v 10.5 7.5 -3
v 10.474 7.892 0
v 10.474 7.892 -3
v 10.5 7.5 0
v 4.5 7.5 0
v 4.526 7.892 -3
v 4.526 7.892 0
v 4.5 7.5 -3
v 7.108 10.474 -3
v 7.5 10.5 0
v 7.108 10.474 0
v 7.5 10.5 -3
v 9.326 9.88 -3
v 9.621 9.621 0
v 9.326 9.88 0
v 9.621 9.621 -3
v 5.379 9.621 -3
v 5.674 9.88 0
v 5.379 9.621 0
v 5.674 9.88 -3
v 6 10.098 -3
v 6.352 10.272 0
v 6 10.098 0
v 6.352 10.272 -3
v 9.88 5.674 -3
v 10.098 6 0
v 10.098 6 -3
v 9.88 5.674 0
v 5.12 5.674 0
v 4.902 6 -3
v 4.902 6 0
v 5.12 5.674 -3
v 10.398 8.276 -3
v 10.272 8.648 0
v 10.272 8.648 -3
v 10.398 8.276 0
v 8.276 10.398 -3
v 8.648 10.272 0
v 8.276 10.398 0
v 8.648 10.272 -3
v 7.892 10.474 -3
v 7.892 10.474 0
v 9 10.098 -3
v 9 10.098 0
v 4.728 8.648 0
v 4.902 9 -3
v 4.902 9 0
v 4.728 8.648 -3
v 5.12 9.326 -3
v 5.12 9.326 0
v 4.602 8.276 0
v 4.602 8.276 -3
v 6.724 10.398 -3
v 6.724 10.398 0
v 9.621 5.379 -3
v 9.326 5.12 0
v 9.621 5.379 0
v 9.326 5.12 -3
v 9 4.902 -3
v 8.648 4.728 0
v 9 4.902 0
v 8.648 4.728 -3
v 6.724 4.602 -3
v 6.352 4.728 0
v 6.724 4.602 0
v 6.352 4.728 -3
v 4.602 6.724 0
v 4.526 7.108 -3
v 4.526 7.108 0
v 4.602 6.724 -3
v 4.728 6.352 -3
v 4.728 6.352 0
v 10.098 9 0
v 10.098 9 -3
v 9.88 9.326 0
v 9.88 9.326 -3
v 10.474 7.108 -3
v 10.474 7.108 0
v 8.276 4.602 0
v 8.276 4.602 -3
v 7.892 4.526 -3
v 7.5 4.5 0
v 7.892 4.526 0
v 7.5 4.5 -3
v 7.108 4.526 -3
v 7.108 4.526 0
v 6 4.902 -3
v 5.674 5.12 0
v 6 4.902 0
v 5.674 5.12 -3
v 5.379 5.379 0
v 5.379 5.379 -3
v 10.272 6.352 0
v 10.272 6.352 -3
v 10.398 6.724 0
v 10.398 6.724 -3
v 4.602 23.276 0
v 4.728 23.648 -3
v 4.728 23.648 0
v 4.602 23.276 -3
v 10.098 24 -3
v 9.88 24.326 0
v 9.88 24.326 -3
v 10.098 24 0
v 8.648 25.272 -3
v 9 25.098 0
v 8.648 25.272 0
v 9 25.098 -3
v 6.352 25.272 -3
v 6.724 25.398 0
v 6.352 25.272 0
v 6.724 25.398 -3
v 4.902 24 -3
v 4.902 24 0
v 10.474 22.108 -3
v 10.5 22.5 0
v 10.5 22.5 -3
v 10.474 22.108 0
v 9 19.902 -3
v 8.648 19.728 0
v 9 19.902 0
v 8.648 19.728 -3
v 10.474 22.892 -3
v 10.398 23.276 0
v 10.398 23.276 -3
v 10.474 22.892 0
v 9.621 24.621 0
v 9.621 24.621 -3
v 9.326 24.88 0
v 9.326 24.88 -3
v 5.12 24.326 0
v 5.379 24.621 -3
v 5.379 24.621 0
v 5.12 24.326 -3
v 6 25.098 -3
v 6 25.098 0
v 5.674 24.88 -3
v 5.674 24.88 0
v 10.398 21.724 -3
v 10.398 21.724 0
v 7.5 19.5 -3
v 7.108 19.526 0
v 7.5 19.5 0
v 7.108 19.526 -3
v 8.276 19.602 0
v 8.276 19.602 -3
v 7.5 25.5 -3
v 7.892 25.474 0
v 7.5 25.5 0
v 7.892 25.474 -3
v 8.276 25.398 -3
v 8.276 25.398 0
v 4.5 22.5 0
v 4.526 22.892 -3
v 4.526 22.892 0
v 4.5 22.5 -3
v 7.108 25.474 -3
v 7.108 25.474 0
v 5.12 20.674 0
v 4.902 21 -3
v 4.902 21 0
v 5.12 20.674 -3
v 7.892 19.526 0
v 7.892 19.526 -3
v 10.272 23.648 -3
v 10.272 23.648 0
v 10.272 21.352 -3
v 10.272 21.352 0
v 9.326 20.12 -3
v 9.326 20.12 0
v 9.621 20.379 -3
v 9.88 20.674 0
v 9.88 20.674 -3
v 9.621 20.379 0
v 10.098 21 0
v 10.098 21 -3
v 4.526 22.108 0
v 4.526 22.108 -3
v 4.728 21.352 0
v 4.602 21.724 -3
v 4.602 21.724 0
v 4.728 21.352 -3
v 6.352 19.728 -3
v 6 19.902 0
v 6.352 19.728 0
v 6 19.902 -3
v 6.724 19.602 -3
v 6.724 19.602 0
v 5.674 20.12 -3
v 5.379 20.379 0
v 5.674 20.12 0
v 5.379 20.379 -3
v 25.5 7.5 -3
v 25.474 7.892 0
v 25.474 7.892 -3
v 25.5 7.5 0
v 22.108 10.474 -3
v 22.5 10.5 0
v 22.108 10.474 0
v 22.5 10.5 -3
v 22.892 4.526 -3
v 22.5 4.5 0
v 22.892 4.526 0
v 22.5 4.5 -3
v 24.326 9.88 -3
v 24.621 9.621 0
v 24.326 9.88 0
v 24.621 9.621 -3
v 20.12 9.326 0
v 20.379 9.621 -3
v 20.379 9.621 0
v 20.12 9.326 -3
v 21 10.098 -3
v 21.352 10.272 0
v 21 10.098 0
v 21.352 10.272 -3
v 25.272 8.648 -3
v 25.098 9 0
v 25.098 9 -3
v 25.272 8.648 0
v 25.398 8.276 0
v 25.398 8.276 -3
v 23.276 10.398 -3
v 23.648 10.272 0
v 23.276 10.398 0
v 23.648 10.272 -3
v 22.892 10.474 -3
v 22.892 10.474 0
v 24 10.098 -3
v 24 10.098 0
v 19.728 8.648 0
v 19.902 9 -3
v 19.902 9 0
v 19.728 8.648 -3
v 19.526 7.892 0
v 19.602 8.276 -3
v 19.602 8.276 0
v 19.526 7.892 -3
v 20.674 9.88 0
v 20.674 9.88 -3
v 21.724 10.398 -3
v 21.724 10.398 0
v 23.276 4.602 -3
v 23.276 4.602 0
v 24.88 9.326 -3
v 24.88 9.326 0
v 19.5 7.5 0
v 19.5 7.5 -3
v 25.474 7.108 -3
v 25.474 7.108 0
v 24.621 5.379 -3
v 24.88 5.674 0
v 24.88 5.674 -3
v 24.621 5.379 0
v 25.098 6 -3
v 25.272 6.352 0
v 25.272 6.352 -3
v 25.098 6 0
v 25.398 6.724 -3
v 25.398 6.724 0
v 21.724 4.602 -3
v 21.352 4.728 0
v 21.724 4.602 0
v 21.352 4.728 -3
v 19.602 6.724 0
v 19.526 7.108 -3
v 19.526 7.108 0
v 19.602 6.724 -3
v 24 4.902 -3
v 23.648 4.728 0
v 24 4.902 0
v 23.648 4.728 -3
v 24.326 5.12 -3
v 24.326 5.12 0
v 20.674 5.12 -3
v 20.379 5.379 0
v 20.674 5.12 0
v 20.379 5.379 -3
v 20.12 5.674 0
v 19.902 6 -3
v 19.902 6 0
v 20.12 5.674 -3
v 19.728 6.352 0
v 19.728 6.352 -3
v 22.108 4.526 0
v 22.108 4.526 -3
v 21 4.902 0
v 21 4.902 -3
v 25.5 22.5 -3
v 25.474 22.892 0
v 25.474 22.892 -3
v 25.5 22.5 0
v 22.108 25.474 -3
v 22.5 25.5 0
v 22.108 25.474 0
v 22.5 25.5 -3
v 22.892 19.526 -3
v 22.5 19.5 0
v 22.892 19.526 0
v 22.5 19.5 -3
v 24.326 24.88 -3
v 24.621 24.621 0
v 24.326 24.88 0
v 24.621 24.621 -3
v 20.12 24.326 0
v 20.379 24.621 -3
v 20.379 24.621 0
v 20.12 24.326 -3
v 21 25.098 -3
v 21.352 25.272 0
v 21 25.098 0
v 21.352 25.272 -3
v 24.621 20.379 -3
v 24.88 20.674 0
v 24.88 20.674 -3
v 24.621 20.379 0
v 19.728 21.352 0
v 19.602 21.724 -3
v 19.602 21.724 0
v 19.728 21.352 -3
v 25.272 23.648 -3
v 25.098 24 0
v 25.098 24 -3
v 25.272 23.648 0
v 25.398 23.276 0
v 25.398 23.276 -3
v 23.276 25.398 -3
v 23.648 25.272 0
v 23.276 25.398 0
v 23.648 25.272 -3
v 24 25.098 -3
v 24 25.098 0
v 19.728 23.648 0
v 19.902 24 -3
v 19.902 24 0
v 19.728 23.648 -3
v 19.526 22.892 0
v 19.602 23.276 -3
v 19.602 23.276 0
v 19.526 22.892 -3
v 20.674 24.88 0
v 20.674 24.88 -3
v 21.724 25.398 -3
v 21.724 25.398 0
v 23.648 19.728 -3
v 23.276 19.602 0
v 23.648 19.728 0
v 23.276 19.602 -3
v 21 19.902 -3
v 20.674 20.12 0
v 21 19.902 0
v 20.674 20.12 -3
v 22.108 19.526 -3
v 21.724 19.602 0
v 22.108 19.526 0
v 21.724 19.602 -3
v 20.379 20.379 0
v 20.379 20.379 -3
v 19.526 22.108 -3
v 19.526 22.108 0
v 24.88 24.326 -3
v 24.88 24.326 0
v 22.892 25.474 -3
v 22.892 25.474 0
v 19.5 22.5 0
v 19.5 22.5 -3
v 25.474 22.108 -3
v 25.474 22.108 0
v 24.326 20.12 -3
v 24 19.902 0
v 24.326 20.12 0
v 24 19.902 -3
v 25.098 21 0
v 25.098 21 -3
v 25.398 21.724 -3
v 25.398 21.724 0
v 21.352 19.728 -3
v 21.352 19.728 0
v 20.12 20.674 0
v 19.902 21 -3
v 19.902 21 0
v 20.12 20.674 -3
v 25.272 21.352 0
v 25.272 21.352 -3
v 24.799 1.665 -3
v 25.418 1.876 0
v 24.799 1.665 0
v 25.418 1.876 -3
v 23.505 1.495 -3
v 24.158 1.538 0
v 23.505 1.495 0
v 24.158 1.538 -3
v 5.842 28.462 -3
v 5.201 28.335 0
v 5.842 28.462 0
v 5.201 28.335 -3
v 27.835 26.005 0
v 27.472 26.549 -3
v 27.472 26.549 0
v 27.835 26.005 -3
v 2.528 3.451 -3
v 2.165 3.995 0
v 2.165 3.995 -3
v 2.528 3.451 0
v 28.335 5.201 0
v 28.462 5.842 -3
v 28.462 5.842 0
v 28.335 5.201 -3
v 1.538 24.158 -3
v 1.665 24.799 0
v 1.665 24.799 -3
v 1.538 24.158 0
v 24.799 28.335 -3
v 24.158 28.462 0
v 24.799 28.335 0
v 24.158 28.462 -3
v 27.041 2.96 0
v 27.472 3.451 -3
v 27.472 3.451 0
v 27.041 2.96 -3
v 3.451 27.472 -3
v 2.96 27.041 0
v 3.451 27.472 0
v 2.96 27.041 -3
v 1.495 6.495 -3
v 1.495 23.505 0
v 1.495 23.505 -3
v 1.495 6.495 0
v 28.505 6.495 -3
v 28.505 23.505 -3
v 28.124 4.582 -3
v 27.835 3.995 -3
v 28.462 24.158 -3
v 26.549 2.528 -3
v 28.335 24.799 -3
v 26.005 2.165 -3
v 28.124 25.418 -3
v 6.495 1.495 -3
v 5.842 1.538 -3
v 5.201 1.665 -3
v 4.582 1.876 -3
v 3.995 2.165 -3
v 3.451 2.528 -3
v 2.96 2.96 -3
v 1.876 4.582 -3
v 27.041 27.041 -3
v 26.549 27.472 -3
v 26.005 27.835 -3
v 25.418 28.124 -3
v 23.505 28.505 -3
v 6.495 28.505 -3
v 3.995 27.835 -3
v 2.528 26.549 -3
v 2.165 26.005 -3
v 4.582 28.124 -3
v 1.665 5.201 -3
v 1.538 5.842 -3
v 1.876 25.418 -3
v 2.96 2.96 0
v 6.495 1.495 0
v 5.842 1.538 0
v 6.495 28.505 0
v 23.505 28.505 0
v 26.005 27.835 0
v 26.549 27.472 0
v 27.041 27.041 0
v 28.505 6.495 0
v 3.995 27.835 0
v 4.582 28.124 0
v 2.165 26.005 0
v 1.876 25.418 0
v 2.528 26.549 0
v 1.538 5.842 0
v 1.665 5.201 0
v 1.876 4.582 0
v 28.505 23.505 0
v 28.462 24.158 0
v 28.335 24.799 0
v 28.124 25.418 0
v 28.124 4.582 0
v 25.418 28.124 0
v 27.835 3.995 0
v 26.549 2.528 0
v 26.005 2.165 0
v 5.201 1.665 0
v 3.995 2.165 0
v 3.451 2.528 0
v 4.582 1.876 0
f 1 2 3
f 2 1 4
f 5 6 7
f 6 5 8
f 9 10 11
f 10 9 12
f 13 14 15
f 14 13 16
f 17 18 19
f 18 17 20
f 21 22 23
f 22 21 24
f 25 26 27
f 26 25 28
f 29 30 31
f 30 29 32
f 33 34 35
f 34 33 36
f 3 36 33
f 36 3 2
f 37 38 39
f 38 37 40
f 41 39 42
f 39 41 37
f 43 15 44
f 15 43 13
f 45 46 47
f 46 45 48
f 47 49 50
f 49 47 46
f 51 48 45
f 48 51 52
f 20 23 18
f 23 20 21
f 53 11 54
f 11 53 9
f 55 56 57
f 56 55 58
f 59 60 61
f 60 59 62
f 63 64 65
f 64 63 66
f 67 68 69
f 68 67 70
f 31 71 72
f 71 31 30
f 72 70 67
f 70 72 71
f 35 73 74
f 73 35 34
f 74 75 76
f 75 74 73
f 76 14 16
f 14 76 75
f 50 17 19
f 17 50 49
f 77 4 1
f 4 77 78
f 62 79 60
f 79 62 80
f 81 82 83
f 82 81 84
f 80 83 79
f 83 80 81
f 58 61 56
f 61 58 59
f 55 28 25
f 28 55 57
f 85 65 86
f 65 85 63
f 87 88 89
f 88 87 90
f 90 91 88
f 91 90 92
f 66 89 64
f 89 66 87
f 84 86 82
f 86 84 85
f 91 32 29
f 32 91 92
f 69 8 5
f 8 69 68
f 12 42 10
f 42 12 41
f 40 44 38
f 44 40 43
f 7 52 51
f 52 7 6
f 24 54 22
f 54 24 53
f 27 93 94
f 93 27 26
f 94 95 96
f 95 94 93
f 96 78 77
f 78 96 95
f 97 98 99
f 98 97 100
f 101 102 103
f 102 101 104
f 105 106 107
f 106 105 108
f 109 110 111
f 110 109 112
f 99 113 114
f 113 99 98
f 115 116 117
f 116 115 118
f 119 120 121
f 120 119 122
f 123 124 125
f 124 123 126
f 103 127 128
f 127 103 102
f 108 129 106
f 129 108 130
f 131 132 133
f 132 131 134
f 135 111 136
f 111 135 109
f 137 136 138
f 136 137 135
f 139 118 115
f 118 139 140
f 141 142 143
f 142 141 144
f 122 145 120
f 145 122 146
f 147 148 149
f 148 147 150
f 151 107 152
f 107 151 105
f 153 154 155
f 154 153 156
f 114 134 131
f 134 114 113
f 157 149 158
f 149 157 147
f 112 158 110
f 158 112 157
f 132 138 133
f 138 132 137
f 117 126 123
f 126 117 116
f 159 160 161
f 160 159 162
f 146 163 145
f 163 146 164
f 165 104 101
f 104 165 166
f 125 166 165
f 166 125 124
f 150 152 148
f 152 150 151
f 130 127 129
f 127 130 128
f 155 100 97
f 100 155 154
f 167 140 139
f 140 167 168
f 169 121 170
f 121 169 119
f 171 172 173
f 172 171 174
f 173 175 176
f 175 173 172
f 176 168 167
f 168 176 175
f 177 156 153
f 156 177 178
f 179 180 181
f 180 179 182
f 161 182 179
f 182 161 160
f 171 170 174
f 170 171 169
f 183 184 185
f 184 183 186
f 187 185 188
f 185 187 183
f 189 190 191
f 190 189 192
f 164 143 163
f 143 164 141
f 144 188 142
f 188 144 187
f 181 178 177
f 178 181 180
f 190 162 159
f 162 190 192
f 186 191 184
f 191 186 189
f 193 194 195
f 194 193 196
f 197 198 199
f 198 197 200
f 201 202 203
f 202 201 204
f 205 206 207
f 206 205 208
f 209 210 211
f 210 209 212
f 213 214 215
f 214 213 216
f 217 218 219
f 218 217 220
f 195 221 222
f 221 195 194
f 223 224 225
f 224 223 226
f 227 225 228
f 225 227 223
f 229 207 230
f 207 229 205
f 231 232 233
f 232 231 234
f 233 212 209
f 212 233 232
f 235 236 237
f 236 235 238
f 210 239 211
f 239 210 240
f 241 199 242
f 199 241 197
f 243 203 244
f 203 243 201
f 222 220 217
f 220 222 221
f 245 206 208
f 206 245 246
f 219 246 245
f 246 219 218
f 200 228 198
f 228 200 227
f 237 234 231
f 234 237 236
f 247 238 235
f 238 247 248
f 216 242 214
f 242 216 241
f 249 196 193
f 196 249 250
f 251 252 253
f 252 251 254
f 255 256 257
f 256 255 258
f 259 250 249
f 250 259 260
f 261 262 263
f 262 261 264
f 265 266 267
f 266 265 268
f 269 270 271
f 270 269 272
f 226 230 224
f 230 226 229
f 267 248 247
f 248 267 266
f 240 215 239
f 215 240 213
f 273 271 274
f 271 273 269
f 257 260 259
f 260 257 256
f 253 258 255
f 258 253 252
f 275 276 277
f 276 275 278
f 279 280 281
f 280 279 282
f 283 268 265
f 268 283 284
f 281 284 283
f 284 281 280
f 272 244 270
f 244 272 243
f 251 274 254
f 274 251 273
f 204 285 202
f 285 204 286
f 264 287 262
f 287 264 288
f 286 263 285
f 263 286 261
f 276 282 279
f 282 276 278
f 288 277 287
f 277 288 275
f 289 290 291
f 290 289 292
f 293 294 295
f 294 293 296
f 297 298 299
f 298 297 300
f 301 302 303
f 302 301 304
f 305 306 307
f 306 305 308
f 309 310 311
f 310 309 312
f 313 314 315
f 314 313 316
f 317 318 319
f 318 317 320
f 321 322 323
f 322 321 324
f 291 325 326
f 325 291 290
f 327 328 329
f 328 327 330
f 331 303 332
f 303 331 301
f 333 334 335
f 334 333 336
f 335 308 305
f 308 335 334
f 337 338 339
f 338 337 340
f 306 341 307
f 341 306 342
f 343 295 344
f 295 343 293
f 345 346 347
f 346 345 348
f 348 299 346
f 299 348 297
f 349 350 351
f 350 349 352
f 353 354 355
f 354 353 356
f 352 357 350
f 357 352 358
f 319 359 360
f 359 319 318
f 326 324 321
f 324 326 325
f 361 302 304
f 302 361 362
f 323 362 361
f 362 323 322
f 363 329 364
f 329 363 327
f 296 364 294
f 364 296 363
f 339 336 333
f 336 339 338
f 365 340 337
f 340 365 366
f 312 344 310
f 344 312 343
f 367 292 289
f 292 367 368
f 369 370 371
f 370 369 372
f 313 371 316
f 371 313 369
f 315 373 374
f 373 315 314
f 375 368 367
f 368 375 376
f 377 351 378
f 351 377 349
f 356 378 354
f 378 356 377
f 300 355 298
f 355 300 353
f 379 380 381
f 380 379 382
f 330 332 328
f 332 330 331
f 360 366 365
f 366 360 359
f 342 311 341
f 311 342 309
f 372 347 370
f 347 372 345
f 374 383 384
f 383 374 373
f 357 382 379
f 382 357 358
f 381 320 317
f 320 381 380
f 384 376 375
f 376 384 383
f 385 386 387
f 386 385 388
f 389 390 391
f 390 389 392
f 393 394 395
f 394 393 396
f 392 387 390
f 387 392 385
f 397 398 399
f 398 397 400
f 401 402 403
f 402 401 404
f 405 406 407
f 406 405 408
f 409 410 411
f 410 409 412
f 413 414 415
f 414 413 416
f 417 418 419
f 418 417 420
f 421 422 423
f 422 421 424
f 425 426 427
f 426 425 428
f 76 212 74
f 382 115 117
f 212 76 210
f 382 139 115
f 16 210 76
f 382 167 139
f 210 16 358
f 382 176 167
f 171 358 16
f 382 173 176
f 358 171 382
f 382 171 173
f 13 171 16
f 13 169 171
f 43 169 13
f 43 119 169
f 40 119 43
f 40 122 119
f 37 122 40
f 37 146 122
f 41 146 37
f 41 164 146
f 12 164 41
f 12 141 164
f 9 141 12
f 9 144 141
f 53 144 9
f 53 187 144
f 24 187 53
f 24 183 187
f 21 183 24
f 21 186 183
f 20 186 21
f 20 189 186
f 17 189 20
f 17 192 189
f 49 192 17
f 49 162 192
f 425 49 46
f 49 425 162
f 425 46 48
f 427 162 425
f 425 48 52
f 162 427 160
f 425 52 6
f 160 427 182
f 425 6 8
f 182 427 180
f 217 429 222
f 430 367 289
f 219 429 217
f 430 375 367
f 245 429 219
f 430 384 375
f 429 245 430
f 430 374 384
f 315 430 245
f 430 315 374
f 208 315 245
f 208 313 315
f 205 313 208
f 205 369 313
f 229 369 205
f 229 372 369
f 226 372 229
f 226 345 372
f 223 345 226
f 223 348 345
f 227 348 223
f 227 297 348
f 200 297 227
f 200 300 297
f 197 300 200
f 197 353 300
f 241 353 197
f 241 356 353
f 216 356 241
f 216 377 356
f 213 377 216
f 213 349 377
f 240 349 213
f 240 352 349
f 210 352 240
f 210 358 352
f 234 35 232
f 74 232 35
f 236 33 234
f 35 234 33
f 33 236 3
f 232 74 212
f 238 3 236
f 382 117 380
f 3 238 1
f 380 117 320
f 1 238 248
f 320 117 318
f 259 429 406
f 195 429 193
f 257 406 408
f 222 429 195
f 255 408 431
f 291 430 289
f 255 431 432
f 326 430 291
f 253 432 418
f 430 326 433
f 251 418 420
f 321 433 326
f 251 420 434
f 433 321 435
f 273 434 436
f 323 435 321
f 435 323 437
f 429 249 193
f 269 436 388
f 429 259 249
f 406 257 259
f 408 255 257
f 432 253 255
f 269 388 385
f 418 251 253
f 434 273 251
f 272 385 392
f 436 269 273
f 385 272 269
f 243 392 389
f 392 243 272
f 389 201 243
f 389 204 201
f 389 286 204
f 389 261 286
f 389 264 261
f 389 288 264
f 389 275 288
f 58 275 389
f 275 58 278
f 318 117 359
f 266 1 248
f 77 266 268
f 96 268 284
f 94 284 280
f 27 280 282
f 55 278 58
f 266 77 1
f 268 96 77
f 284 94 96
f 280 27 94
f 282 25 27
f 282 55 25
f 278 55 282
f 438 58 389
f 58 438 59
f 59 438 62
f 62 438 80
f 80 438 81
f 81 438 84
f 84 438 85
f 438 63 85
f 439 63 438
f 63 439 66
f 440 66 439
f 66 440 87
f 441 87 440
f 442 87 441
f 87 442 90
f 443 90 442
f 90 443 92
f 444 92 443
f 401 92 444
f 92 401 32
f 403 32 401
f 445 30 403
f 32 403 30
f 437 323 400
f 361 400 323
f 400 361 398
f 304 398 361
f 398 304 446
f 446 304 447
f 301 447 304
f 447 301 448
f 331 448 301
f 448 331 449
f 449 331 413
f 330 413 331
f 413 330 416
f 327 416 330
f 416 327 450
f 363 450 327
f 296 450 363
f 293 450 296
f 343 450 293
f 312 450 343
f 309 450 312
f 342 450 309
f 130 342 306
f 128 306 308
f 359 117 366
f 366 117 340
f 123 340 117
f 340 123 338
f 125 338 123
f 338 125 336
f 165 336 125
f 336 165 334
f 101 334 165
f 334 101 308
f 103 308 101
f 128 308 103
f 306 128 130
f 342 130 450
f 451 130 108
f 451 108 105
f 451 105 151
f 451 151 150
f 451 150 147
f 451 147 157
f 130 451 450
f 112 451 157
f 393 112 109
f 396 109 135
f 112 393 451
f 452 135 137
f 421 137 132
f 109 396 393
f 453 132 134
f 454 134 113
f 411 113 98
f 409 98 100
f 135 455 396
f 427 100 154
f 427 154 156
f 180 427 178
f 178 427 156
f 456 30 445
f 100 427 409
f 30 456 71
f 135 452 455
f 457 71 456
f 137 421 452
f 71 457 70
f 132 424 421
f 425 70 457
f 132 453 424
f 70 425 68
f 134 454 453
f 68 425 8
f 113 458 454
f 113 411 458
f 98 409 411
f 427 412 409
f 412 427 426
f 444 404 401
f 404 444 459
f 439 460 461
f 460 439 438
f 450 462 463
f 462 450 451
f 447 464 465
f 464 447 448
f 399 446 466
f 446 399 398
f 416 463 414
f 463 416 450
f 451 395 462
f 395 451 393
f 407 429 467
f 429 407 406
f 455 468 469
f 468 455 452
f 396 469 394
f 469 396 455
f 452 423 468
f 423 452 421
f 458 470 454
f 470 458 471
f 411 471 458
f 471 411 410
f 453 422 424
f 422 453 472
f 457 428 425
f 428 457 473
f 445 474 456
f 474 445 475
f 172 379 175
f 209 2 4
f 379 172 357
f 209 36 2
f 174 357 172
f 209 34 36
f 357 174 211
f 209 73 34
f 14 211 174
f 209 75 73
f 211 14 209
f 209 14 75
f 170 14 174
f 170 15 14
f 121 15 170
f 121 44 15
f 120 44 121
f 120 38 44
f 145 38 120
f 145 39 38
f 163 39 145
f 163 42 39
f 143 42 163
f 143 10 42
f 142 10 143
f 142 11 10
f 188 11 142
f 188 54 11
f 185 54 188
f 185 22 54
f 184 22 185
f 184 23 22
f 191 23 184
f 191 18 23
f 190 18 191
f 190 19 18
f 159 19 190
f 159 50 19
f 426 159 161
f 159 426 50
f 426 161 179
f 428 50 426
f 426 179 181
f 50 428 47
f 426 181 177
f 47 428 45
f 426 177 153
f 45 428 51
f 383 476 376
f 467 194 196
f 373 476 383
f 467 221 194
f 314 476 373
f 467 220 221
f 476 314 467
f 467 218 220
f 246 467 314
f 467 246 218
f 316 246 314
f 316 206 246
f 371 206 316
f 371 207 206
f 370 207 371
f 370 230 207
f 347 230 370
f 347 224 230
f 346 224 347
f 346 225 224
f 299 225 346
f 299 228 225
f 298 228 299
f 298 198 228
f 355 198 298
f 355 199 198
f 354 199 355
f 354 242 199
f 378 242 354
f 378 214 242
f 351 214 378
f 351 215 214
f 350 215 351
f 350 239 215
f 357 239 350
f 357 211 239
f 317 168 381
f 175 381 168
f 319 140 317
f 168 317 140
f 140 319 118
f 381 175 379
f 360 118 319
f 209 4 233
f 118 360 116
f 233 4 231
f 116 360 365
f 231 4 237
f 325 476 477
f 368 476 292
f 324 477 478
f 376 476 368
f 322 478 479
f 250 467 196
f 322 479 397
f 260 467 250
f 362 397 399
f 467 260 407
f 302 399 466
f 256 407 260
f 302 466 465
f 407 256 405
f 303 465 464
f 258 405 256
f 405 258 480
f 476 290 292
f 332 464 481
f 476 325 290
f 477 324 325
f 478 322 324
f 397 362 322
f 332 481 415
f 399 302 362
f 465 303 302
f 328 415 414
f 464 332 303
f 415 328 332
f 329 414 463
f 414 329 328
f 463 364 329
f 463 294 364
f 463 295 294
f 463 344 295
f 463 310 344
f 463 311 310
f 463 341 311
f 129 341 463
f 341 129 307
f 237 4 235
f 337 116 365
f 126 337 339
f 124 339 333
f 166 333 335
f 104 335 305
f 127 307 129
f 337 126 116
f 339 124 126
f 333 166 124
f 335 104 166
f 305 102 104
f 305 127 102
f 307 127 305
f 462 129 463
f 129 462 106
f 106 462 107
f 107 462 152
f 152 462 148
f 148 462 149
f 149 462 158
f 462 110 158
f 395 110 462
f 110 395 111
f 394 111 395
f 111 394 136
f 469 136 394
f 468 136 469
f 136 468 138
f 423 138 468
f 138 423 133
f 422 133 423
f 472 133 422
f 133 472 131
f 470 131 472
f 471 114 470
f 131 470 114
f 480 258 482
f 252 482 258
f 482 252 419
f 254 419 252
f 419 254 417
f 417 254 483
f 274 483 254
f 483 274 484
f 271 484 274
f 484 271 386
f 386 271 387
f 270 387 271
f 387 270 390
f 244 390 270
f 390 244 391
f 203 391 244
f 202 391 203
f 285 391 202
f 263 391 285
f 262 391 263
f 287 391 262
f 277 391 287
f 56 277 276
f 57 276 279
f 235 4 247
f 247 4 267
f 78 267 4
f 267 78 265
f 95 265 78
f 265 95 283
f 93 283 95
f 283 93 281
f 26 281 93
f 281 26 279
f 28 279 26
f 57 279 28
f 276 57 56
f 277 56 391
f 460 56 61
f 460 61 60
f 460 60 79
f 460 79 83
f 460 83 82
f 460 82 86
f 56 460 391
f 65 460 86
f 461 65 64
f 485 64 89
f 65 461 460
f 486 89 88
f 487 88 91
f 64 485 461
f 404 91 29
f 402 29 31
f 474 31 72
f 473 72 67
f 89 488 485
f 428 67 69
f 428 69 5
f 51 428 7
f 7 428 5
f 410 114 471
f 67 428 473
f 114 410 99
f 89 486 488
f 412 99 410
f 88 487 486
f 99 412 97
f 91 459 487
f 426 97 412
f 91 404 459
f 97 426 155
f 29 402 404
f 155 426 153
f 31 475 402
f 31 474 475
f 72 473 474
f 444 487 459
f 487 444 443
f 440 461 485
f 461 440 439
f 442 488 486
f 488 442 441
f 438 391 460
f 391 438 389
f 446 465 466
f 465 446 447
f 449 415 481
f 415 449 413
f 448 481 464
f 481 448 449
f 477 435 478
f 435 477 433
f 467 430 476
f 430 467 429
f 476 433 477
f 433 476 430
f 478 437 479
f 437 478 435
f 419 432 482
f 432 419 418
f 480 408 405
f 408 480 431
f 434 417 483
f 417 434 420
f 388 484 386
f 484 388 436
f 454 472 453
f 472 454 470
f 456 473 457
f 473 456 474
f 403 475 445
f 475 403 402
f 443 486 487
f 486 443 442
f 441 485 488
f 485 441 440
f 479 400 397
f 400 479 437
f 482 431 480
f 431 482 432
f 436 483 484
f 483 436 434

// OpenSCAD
// Generated by SolidPython 1.1.3 on 2022-09-14 10:11:20
$fn = 48;


difference() {
	union() {
		color(alpha = 1.0000000000, c = "Gold") {
			translate(v = [15.0000000000, 15.0000000000, 0]) {
				rotate(a = [0, 0, 0]) {
					translate(v = [0, 0, -3]) {
						linear_extrude(height = 3) {
							offset(r = 5) {
								square(center = true, size = [17.0100000000, 17.0100000000]);
							}
						}
					}
				}
			}
		}
	}
	union() {
		color(alpha = 1.0000000000, c = "Gold") {
			translate(v = [7.5000000000, 7.5000000000, 0]) {
				rotate(a = [0, 0, 0]) {
					translate(v = [0, 0, -250]) {
						cylinder(h = 500, r = 3.0000000000);
					}
				}
			}
		}
		color(alpha = 1.0000000000, c = "Gold") {
			translate(v = [7.5000000000, 22.5000000000, 0]) {
				rotate(a = [0, 0, 0]) {
					translate(v = [0, 0, -250]) {
						cylinder(h = 500, r = 3.0000000000);
					}
				}
			}
		}
		color(alpha = 1.0000000000, c = "Gold") {
			translate(v = [22.5000000000, 7.5000000000, 0]) {
				rotate(a = [0, 0, 0]) {
					translate(v = [0, 0, -250]) {
						cylinder(h = 500, r = 3.0000000000);
					}
				}
			}
		}
		color(alpha = 1.0000000000, c = "Gold") {
			translate(v = [22.5000000000, 22.5000000000, 0]) {
				rotate(a = [0, 0, 0]) {
					translate(v = [0, 0, -250]) {
						cylinder(h = 500, r = 3.0000000000);
					}
				}
			}
		}
	}
}
/***********************************************
*********      SolidPython code:      **********
************************************************
 
import subprocess

from solid.objects import *
from solid import scad_render_to_file, scad_render

import os

##################################################################################################################################################
##################################################################################################################################################
##################################################################################################################################################
##################################################################################################################################################
######  DIMENSION STUFF
##################################################################################################################################################
##################################################################################################################################################
##################################################################################################################################################
##################################################################################################################################################


mode = "3DPR"
#mode = "LAZE"
#mode = "TURE"
#mode = ""


######  Countersunk
countersunkM = []
WIDTH = 0
DEPTH = 1
countersunkM1width = 0; countersunkM1depth = 0; countersunkM2width = 0; countersunkM2depth = 0
countersunkM3width = 0
countersunkM3depth = 0
countersunkM4width = 0
countersunkM4depth = 0
countersunkM5width = 0
countersunkM5depth = 0
countersunkM6width = 0
countersunkM6depth = 0

######  Holes
holeM = []
holeM1 = 0
holeM2 = 0
holeM3 = 0
holeM4 = 0
holeM5 = 0
holeM6 = 0

######  Nuts
nutM = []
NUTWIDTH = 0
NUTDEPTH = 1
nutM1width = 0
nutM1depth = 0
nutM2width = 0
nutM2depth = 0
nutM3width = 0
nutM3depth = 0
nutM4width = 0
nutM4depth = 0
nutM5width = 0
nutM5depth = 0
nutM6width = 0
nutM6depth = 0

######  OOEB
ooebPinWidth = 0
ooebPinWidthWide = 0


######  Colors
colDefault = "Gold"

colOOEBbase = colDefault

colLEDRed = "red"
colWire = "gray"
    ######  Resistor
colRes = list()
colResistor = "beige"

colResBlack = "black"
colRes.append(colResBlack)
colResBrown = "brown"
colRes.append(colResBrown)
colResRed = "red"
colRes.append(colResRed)
colResOrange = "orange"
colRes.append(colResOrange)
colResYellow = "yellow"
colRes.append(colResYellow)
colResGreen = "green"
colRes.append(colResGreen)
colResBlue = "blue"
colRes.append(colResBlue)
colResPurple = "purple"
colRes.append(colResPurple)
colResGray = "gray"
colRes.append(colResGray)
colResWhite = "white"
colRes.append(colResWhite)





def changeMode(m="3DPR"):
    #print("####################################################      CHANGING MODES TO: " + m)
    global mode
    mode = m
    ######  Countersunk
    global countersunkM, countersunkM1width, countersunkM1depth, countersunkM2width, countersunkM2depth, countersunkM3width, countersunkM3depth, countersunkM4width, countersunkM4depth, countersunkM5width, countersunkM5depth, countersunkM6width, countersunkM6depth
    countersunkM = []
    countersunkM.append([0,0])
    countersunkM1width = 0 if mode== "3DPR" else 0
    countersunkM1depth = 0 if mode== "3DPR" else 0
    countersunkM.append([countersunkM1width,countersunkM1depth])
    countersunkM2width = 0 if mode== "3DPR" else 0
    countersunkM2depth = 0 if mode== "3DPR" else 0
    countersunkM.append([countersunkM2width,countersunkM2depth])
    countersunkM3width = 5.5/2+0.6 if mode== "3DPR" else 5.5/2
    countersunkM3depth = 1.7 if mode== "3DPR" else 1.7
    countersunkM.append([countersunkM3width,countersunkM3depth])
    countersunkM4width = 0 if mode== "3DPR" else 0
    countersunkM4depth = 0 if mode== "3DPR" else 0
    countersunkM.append([countersunkM4width,countersunkM4depth])
    countersunkM5width = 0 if mode== "3DPR" else 0
    countersunkM5depth = 0 if mode== "3DPR" else 0
    countersunkM.append([countersunkM5width,countersunkM5depth])
    countersunkM6width = 0 if mode== "3DPR" else 0
    countersunkM6depth = 0 if mode== "3DPR" else 0
    countersunkM.append([countersunkM6width,countersunkM6depth])
    ######  Holes
    global holeM, holeM1, holeM2, holeM3, holeM4, holeM5, holeM6, holeM7, holeM8
    holeM = []
    holeM1 = 1.2/2 if mode== "3DPR" else 1/2
    holeM2 = 2.3/2 if mode== "3DPR" else 2/2
    holeM3 = 3.4/2 if mode== "3DPR" else 3/2
    holeM4 = 4.4/2 if mode== "3DPR" else 4/2
    holeM5 = 5.4/2 if mode== "3DPR" else 5/2
    holeM6 = 6.5/2 if mode== "3DPR" else 6/2
    holeM7 = 7.5/2 if mode== "3DPR" else 7/2
    holeM8 = 8.6/2 if mode== "3DPR" else 8/2
    holeM.append(0)
    holeM.append(holeM1)
    holeM.append(holeM2)
    holeM.append(holeM3)
    holeM.append(holeM4)
    holeM.append(holeM5)
    holeM.append(holeM6)
    holeM.append(holeM7)
    holeM.append(holeM8)
    #####  Nuts
    global nutM, nutM1width, nutM1depth, nutM2width, nutM2depth, nutM3width, nutM3depth, nutM4width, nutM4depth, nutM5width, nutM5depth, nutM6width, nutM6depth
    nutM = []
    nutM.append([0,0]) 
    #M1 Nut
    nutM1width = 0
    nutM1depth = 0
    nutM.append([nutM1width,nutM1depth])    
    #M2 Nut
    nutM2width = 0
    nutM2depth = 0
    nutM.append([nutM2width,nutM2depth])    
    #M3 Nut
    nutM3width = 6.05 if mode== "3DPR" else 5.5
    nutM3depth = 2.5 if mode== "3DPR" else 2.5
    nutM.append([nutM3width,nutM3depth])    
    #M4 Nut
    nutM4width = 0
    nutM4depth = 0
    nutM.append([nutM4width,nutM4depth])    
    #M5 Nut
    nutM5width = 0
    nutM5depth = 0
    nutM.append([nutM5width,nutM5depth])    
    #M6 Nut
    nutM6width = 11 if mode== "3DPR" else 10
    nutM6depth = 5 if mode== "3DPR" else 5
    nutM.append([nutM6width,nutM6depth])    

    ######  OOEB
    global ooebPinWidth,  ooebPinWidthWide

    ooebPinWidth = 0.6
    if(mode=="3DPR" or mode=="LAZE"):
        ooebPinWidth = 0.6 + 0.6
    ooebPinWidthWide = 1.2
    if(mode=="3DPR" or mode=="LAZE"):
        ooebPinWidthWide = 1.2 + 0.6


changeMode()


""""    
holeM12D = s=="3DPR" ? 1.4/2 : 1.2/2;
holeM16D = s=="3DPR" ? 1.8/2 : 1.6/2;
holeM2 = s=="3DPR" ? 2.3/2 : 2/2;
holeM25D = s=="3DPR" ? 2.8/2 : 2.5/2;
holeM27D = s=="3DPR" ? 3.1/2 : 2.7/2;    
holeM3 = s=="3DPR" ? 3.4/2 : 3/2;
holeM35D = s=="3DPR" ? 3.9/2 : 35/2;
holeM4 = s=="3DPR" ? 4.4/2 : 4/2;
holeM5 = s=="3DPR" ? 5.4/2 : 5/2;
holeM6 = s=="3DPR" ? 6.5/2 : 6/2;
holeM6Minus = s=="3DPR" ? 5.8/2 : 5.9/2;
holeM7 = s=="3DPR" ? 7.5/2 : 7/2;
holeM8 = s=="3DPR" ? 8.6/2 : 8/2;
holeM9 = s=="3DPR" ? 9.6/2 : 9/2;
holeM10 = s=="3DPR" ? 10.6/2 : 10/2;
holeM11 = s=="3DPR" ? 11.6/2 : 11/2;
holeM12 = s=="3DPR" ? 12.6/2 : 12/2;
holeM13 = s=="3DPR" ? 13.6/2 : 13/2;
holeM14 = s=="3DPR" ? 14.6/2 : 14/2;
holeM15 = s=="3DPR" ? 15.6/2 : 15/2;
holeM16 = s=="3DPR" ? 16.6/2 : 16/2;
holeM17 = s=="3DPR" ? 17.6/2 : 17/2;
holeM18 = s=="3DPR" ? 18.6/2 : 18/2;
holeM19 = s=="3DPR" ? 19.6/2 : 19/2;
holeM20 = s=="3DPR" ? 20.6/2 : 20/2;
"""

##################################################################################################################################################
##################################################################################################################################################
##################################################################################################################################################
##################################################################################################################################################
######  REGULAR STUFF
##################################################################################################################################################
##################################################################################################################################################
##################################################################################################################################################
##################################################################################################################################################


def setMode(mode="3DPR"):
    changeMode(mode)

def getMode():
    return mode



def saveToScad(fileName, parts):
    dir =  os.path.dirname(os.path.abspath(fileName))
    Path(dir).mkdir(parents=True, exist_ok=True)
    file_out = scad_render_to_file(parts, fileName, file_header=f'$fn = 48;')


def saveToDxf(fileIn, fileOut=""):
    if fileOut == "":
        fileOut = fileIn.replace(".scad",".dxf")
    saveToFile(fileIn, fileOut)
    
def saveToPng(fileIn, fileOut="",extra="--render"):
    if fileOut == "":
        fileOut = fileIn.replace(".scad",".png")
    saveToFile(fileIn, fileOut)

def saveToStl(fileIn, fileOut=""):
    if fileOut == "":
        fileOut = fileIn.replace(".scad",".stl")
    saveToFile(fileIn, fileOut)
    
def saveToSvg(fileIn, fileOut=""):
    if fileOut == "":
        fileOut = fileIn.replace(".scad",".svg")
    saveToFile(fileIn, fileOut)

def saveToFile(fileIn, fileOut,extra=""):
    extra = extra + " --colorscheme Tomorrow"

    launchStr = 'openscad -o "' + fileOut + '"' + extra + ' "' + fileIn + '"'
    print("            saveToFile launch string: " + launchStr)
    subprocess.run(launchStr)
    x=0



def insert(item,pos=[None,None,None],x=0,y=0,z=0,ex=0,size=[None,None,None],length=0,rot=[None,None,None],rotX=0,rotY=0,rotZ=0,width=0,height=0,depth=100,rad=0,rad2=0,color=colDefault,alpha=1,OOwidth=0,OOheight=0,holes=True,negative=True, name=""):
    return OPSCInsert(item,pos,x,y,z,ex,size,length,rot,rotX,rotY,rotZ,width,height,depth,rad,rad2,color,alpha,OOwidth,OOheight,holes,negative,name)


def OPSCInsert(item,pos=[None,None,None],x=0,y=0,z=0,ex=0,size=[None,None,None],length=0,rot=[None,None,None],rotX=0,rotY=0,rotZ=0,width=0,height=0,depth=100,rad=0,rad2=0,col=colDefault,alpha=1,OOwidth=0,OOheight=0,holes=True,negative=True, name=""):
    
    """
        color(color,alpha){
            translate([x,y,z]){
                    rotate([rotX,rotY,rotZ]){
    """
    returnValue = ""

    #print(pos)

    if pos[0] != None:
        x=pos[0]
        y=pos[1]
        z=pos[2]
    if rot[0] != None:
        rotX=rot[0]
        rotY=rot[1]
        rotZ=rot[2]
    
    returnValue = color(col)(translate((x,y,z))(
                            rotate((rotX,rotY,rotZ))(
                                OPSCInsertIf(item,pos,x,y,z,ex,size,length,rot,rotX,rotY,rotZ,width,height,depth,rad,rad2,col,alpha,OOwidth,OOheight,holes,negative,name)
                            )
                        ))
                
    

    return returnValue

def OPSCInsertIf(item,pos=[None,None,None],x=0,y=0,z=0,ex=0,size=[None,None,None],length=0,rot=[None,None,None],rotX=0,rotY=0,rotZ=0,width=0,height=0,depth=100,rad=0,rad2=0,color=colDefault,alpha=1,OOwidth=0,OOheight=0,holes=True,negative=True, name=""):
    returnValue = cube([10,10,10])

    if size[0] != None:
        width=size[0]
        height=size[1]
        depth=size[2]

    #print("    OPSCInsert item:" + str(item) + " at:[" + str(x) + "," + str(y) + "," + str(z) + "] size: [" + str(width) + "," + str(height) + "," + str(depth) + "]")

    if(item=="cube"):
        returnValue =  translate([0,0,-depth/2])(cube([width,height,depth],center=True))
    elif(item=="cylinder"):        
        returnValue = translate([0,0,-depth/2])(cylinder(r=rad,h=depth,center=True))
    elif(item=="sphere"):        
        returnValue = translate([0,0,-rad])(sphere(r=rad))
    elif(item=="plane"):
        if depth == 100:
            returnValue = insert("cube",size=[1000,1000,0.1],color=color)            
        else:
            returnValue = insert("cube",size=[1000,1000,depth],color=color)                        
    elif(item=="cubeRounded"):
        if(rad == 0):
                            rad = 5
        returnValue =  translate([0,0,-depth])(
                        linear_extrude(height=depth)(                        
                            offset(r=rad)(
                                square((width-rad*2+.01,height-rad*2+.01),center=True)
                                )
                            )
        )
    ######  Countersunk
    elif(item == "countersunkM1" or item == "csM1" ):
        returnValue = OSPCgetCountersunk(rad=1)
    elif(item == "countersunkM2" or item == "csM2" ):
        returnValue = OSPCgetCountersunk(rad=2)
    elif(item == "countersunkM3" or item == "csM3" ):
        returnValue = OSPCgetCountersunk(rad=3)
    elif(item == "countersunkM4" or item == "csM4" ):
        returnValue = OSPCgetCountersunk(rad=4)
    elif(item == "countersunkM5" or item == "csM5" ):
        returnValue = OSPCgetCountersunk(rad=5)
    elif(item == "countersunkM6" or item == "csM6" ):
        returnValue = OSPCgetCountersunk(rad=6)
    elif(item == "countersunk" or item == "cs"):
        returnValue = OSPCgetCountersunk(rad=rad)


    ######  Holes    
    elif(item == "holeM1"):
        returnValue = OSPCgetHole(rad=1)
    elif(item == "holeM2"):
        returnValue = OSPCgetHole(rad=2)
    elif(item == "holeM3"):
        returnValue = OSPCgetHole(rad=3)
    elif(item == "holeM4"):
        returnValue = OSPCgetHole(rad=4)
    elif(item == "holeM5"):
        returnValue = OSPCgetHole(rad=5)
    elif(item == "holeM6"):
        returnValue = OSPCgetHole(rad=6)
    elif(item == "hole"):
        returnValue = OSPCgetHole(rad=rad)

    ######  Nuts
    elif(item == "nutM1"):
        returnValue = OSPCgetNut(rad=1,depth=depth)
    elif(item == "nutM2"):
        returnValue = OSPCgetNut(rad=2,depth=depth)
    elif(item == "nutM3"):
        returnValue = OSPCgetNut(rad=3,depth=depth)
    elif(item == "nutM4"):
        returnValue = OSPCgetNut(rad=4,depth=depth)
    elif(item == "nutM5"):
        returnValue = OSPCgetNut(rad=5,depth=depth)
    elif(item == "nutM6"):
        returnValue = OSPCgetNut(rad=6,depth=depth)
    elif(item == "nut"):
        returnValue = OSPCgetNut(rad=rad,depth=depth)
    return returnValue

                

def OSPCgetHole(rad):
    return translate([0,0,-250])(cylinder(r=holeM[rad],h=500))

def OSPCgetNut(rad,depth):
    depth = nutM[rad][NUTDEPTH] if depth==100 else depth
    returnValue = OPSChexagon(nutM[rad][NUTWIDTH],depth=depth)
    return returnValue

def OSPCgetCountersunk(rad):
    depth=countersunkM[rad][DEPTH]
    returnValue = translate([0,0,-depth])(cylinder(h=depth,r2=countersunkM[rad][WIDTH],r1=holeM[rad]))
    return returnValue

def OPSChexagon(width,depth):
    cutter = item()
    wid=width*2
    cutter.addPos(insert("cube",pos=[wid/2+width/2,0,0],size=[wid,wid,depth]))
    cutter.addPos(insert("cube",pos=[-wid/2-width/2,0,0],size=[wid,wid,depth]))

    cut = cutter.getPart()
    #print(depth)
    returnValue = difference()(
        translate([0,0,-depth/2])(cube([wid,wid,depth],center=True)),
        cut,
        rotate([0,0,60])(cut),
        rotate([0,0,-60])(cut)
    )

    return returnValue




class item:

    def __init__(self):
        self.posItems=list()
        self.negItems=list()

    def isEmpty(self):        
        testString = scad_render(self.getPart())
        #print("test String length: " + str(len(testString)))
        returnValue = False
        if len(testString) == 270:            
            returnValue = True
        return returnValue

    def addPos(self,part):
        self.posItems.append(part)
    def addNeg(self,part):
        self.negItems.append(part)

    def getPart(self):
        returnValue = difference()(
            union()(self.posItems),
            union()(self.negItems)
        )
        return returnValue

    def getLaser(self,start=0,layers=1,thickness=-3,tileDif=200):
        rv= []

        for x in range(layers):
            rv.append(translate([0,x*tileDif,0])(
                    projection()(
                        intersection()(
                            insert("plane",z=start+x*thickness),
                            self.getPart()
                        )
                    )
            )
            )
        return union()(rv)

    def getSplit(self,start=0,depth=6,tileDif=200):
        rv= []

        rv.append(translate([0,0,0])(
            intersection()(
                insert("cube",size=[100,100,depth],z=start),
                self.getPart()
            )
        )
        )

        rv.append(translate([0,tileDif,depth])(
            intersection()(
                insert("cube",size=[100,100,depth],z=start-depth),
                self.getPart()
            )
        )
        )        
        return union()(rv)


 
 
************************************************/
